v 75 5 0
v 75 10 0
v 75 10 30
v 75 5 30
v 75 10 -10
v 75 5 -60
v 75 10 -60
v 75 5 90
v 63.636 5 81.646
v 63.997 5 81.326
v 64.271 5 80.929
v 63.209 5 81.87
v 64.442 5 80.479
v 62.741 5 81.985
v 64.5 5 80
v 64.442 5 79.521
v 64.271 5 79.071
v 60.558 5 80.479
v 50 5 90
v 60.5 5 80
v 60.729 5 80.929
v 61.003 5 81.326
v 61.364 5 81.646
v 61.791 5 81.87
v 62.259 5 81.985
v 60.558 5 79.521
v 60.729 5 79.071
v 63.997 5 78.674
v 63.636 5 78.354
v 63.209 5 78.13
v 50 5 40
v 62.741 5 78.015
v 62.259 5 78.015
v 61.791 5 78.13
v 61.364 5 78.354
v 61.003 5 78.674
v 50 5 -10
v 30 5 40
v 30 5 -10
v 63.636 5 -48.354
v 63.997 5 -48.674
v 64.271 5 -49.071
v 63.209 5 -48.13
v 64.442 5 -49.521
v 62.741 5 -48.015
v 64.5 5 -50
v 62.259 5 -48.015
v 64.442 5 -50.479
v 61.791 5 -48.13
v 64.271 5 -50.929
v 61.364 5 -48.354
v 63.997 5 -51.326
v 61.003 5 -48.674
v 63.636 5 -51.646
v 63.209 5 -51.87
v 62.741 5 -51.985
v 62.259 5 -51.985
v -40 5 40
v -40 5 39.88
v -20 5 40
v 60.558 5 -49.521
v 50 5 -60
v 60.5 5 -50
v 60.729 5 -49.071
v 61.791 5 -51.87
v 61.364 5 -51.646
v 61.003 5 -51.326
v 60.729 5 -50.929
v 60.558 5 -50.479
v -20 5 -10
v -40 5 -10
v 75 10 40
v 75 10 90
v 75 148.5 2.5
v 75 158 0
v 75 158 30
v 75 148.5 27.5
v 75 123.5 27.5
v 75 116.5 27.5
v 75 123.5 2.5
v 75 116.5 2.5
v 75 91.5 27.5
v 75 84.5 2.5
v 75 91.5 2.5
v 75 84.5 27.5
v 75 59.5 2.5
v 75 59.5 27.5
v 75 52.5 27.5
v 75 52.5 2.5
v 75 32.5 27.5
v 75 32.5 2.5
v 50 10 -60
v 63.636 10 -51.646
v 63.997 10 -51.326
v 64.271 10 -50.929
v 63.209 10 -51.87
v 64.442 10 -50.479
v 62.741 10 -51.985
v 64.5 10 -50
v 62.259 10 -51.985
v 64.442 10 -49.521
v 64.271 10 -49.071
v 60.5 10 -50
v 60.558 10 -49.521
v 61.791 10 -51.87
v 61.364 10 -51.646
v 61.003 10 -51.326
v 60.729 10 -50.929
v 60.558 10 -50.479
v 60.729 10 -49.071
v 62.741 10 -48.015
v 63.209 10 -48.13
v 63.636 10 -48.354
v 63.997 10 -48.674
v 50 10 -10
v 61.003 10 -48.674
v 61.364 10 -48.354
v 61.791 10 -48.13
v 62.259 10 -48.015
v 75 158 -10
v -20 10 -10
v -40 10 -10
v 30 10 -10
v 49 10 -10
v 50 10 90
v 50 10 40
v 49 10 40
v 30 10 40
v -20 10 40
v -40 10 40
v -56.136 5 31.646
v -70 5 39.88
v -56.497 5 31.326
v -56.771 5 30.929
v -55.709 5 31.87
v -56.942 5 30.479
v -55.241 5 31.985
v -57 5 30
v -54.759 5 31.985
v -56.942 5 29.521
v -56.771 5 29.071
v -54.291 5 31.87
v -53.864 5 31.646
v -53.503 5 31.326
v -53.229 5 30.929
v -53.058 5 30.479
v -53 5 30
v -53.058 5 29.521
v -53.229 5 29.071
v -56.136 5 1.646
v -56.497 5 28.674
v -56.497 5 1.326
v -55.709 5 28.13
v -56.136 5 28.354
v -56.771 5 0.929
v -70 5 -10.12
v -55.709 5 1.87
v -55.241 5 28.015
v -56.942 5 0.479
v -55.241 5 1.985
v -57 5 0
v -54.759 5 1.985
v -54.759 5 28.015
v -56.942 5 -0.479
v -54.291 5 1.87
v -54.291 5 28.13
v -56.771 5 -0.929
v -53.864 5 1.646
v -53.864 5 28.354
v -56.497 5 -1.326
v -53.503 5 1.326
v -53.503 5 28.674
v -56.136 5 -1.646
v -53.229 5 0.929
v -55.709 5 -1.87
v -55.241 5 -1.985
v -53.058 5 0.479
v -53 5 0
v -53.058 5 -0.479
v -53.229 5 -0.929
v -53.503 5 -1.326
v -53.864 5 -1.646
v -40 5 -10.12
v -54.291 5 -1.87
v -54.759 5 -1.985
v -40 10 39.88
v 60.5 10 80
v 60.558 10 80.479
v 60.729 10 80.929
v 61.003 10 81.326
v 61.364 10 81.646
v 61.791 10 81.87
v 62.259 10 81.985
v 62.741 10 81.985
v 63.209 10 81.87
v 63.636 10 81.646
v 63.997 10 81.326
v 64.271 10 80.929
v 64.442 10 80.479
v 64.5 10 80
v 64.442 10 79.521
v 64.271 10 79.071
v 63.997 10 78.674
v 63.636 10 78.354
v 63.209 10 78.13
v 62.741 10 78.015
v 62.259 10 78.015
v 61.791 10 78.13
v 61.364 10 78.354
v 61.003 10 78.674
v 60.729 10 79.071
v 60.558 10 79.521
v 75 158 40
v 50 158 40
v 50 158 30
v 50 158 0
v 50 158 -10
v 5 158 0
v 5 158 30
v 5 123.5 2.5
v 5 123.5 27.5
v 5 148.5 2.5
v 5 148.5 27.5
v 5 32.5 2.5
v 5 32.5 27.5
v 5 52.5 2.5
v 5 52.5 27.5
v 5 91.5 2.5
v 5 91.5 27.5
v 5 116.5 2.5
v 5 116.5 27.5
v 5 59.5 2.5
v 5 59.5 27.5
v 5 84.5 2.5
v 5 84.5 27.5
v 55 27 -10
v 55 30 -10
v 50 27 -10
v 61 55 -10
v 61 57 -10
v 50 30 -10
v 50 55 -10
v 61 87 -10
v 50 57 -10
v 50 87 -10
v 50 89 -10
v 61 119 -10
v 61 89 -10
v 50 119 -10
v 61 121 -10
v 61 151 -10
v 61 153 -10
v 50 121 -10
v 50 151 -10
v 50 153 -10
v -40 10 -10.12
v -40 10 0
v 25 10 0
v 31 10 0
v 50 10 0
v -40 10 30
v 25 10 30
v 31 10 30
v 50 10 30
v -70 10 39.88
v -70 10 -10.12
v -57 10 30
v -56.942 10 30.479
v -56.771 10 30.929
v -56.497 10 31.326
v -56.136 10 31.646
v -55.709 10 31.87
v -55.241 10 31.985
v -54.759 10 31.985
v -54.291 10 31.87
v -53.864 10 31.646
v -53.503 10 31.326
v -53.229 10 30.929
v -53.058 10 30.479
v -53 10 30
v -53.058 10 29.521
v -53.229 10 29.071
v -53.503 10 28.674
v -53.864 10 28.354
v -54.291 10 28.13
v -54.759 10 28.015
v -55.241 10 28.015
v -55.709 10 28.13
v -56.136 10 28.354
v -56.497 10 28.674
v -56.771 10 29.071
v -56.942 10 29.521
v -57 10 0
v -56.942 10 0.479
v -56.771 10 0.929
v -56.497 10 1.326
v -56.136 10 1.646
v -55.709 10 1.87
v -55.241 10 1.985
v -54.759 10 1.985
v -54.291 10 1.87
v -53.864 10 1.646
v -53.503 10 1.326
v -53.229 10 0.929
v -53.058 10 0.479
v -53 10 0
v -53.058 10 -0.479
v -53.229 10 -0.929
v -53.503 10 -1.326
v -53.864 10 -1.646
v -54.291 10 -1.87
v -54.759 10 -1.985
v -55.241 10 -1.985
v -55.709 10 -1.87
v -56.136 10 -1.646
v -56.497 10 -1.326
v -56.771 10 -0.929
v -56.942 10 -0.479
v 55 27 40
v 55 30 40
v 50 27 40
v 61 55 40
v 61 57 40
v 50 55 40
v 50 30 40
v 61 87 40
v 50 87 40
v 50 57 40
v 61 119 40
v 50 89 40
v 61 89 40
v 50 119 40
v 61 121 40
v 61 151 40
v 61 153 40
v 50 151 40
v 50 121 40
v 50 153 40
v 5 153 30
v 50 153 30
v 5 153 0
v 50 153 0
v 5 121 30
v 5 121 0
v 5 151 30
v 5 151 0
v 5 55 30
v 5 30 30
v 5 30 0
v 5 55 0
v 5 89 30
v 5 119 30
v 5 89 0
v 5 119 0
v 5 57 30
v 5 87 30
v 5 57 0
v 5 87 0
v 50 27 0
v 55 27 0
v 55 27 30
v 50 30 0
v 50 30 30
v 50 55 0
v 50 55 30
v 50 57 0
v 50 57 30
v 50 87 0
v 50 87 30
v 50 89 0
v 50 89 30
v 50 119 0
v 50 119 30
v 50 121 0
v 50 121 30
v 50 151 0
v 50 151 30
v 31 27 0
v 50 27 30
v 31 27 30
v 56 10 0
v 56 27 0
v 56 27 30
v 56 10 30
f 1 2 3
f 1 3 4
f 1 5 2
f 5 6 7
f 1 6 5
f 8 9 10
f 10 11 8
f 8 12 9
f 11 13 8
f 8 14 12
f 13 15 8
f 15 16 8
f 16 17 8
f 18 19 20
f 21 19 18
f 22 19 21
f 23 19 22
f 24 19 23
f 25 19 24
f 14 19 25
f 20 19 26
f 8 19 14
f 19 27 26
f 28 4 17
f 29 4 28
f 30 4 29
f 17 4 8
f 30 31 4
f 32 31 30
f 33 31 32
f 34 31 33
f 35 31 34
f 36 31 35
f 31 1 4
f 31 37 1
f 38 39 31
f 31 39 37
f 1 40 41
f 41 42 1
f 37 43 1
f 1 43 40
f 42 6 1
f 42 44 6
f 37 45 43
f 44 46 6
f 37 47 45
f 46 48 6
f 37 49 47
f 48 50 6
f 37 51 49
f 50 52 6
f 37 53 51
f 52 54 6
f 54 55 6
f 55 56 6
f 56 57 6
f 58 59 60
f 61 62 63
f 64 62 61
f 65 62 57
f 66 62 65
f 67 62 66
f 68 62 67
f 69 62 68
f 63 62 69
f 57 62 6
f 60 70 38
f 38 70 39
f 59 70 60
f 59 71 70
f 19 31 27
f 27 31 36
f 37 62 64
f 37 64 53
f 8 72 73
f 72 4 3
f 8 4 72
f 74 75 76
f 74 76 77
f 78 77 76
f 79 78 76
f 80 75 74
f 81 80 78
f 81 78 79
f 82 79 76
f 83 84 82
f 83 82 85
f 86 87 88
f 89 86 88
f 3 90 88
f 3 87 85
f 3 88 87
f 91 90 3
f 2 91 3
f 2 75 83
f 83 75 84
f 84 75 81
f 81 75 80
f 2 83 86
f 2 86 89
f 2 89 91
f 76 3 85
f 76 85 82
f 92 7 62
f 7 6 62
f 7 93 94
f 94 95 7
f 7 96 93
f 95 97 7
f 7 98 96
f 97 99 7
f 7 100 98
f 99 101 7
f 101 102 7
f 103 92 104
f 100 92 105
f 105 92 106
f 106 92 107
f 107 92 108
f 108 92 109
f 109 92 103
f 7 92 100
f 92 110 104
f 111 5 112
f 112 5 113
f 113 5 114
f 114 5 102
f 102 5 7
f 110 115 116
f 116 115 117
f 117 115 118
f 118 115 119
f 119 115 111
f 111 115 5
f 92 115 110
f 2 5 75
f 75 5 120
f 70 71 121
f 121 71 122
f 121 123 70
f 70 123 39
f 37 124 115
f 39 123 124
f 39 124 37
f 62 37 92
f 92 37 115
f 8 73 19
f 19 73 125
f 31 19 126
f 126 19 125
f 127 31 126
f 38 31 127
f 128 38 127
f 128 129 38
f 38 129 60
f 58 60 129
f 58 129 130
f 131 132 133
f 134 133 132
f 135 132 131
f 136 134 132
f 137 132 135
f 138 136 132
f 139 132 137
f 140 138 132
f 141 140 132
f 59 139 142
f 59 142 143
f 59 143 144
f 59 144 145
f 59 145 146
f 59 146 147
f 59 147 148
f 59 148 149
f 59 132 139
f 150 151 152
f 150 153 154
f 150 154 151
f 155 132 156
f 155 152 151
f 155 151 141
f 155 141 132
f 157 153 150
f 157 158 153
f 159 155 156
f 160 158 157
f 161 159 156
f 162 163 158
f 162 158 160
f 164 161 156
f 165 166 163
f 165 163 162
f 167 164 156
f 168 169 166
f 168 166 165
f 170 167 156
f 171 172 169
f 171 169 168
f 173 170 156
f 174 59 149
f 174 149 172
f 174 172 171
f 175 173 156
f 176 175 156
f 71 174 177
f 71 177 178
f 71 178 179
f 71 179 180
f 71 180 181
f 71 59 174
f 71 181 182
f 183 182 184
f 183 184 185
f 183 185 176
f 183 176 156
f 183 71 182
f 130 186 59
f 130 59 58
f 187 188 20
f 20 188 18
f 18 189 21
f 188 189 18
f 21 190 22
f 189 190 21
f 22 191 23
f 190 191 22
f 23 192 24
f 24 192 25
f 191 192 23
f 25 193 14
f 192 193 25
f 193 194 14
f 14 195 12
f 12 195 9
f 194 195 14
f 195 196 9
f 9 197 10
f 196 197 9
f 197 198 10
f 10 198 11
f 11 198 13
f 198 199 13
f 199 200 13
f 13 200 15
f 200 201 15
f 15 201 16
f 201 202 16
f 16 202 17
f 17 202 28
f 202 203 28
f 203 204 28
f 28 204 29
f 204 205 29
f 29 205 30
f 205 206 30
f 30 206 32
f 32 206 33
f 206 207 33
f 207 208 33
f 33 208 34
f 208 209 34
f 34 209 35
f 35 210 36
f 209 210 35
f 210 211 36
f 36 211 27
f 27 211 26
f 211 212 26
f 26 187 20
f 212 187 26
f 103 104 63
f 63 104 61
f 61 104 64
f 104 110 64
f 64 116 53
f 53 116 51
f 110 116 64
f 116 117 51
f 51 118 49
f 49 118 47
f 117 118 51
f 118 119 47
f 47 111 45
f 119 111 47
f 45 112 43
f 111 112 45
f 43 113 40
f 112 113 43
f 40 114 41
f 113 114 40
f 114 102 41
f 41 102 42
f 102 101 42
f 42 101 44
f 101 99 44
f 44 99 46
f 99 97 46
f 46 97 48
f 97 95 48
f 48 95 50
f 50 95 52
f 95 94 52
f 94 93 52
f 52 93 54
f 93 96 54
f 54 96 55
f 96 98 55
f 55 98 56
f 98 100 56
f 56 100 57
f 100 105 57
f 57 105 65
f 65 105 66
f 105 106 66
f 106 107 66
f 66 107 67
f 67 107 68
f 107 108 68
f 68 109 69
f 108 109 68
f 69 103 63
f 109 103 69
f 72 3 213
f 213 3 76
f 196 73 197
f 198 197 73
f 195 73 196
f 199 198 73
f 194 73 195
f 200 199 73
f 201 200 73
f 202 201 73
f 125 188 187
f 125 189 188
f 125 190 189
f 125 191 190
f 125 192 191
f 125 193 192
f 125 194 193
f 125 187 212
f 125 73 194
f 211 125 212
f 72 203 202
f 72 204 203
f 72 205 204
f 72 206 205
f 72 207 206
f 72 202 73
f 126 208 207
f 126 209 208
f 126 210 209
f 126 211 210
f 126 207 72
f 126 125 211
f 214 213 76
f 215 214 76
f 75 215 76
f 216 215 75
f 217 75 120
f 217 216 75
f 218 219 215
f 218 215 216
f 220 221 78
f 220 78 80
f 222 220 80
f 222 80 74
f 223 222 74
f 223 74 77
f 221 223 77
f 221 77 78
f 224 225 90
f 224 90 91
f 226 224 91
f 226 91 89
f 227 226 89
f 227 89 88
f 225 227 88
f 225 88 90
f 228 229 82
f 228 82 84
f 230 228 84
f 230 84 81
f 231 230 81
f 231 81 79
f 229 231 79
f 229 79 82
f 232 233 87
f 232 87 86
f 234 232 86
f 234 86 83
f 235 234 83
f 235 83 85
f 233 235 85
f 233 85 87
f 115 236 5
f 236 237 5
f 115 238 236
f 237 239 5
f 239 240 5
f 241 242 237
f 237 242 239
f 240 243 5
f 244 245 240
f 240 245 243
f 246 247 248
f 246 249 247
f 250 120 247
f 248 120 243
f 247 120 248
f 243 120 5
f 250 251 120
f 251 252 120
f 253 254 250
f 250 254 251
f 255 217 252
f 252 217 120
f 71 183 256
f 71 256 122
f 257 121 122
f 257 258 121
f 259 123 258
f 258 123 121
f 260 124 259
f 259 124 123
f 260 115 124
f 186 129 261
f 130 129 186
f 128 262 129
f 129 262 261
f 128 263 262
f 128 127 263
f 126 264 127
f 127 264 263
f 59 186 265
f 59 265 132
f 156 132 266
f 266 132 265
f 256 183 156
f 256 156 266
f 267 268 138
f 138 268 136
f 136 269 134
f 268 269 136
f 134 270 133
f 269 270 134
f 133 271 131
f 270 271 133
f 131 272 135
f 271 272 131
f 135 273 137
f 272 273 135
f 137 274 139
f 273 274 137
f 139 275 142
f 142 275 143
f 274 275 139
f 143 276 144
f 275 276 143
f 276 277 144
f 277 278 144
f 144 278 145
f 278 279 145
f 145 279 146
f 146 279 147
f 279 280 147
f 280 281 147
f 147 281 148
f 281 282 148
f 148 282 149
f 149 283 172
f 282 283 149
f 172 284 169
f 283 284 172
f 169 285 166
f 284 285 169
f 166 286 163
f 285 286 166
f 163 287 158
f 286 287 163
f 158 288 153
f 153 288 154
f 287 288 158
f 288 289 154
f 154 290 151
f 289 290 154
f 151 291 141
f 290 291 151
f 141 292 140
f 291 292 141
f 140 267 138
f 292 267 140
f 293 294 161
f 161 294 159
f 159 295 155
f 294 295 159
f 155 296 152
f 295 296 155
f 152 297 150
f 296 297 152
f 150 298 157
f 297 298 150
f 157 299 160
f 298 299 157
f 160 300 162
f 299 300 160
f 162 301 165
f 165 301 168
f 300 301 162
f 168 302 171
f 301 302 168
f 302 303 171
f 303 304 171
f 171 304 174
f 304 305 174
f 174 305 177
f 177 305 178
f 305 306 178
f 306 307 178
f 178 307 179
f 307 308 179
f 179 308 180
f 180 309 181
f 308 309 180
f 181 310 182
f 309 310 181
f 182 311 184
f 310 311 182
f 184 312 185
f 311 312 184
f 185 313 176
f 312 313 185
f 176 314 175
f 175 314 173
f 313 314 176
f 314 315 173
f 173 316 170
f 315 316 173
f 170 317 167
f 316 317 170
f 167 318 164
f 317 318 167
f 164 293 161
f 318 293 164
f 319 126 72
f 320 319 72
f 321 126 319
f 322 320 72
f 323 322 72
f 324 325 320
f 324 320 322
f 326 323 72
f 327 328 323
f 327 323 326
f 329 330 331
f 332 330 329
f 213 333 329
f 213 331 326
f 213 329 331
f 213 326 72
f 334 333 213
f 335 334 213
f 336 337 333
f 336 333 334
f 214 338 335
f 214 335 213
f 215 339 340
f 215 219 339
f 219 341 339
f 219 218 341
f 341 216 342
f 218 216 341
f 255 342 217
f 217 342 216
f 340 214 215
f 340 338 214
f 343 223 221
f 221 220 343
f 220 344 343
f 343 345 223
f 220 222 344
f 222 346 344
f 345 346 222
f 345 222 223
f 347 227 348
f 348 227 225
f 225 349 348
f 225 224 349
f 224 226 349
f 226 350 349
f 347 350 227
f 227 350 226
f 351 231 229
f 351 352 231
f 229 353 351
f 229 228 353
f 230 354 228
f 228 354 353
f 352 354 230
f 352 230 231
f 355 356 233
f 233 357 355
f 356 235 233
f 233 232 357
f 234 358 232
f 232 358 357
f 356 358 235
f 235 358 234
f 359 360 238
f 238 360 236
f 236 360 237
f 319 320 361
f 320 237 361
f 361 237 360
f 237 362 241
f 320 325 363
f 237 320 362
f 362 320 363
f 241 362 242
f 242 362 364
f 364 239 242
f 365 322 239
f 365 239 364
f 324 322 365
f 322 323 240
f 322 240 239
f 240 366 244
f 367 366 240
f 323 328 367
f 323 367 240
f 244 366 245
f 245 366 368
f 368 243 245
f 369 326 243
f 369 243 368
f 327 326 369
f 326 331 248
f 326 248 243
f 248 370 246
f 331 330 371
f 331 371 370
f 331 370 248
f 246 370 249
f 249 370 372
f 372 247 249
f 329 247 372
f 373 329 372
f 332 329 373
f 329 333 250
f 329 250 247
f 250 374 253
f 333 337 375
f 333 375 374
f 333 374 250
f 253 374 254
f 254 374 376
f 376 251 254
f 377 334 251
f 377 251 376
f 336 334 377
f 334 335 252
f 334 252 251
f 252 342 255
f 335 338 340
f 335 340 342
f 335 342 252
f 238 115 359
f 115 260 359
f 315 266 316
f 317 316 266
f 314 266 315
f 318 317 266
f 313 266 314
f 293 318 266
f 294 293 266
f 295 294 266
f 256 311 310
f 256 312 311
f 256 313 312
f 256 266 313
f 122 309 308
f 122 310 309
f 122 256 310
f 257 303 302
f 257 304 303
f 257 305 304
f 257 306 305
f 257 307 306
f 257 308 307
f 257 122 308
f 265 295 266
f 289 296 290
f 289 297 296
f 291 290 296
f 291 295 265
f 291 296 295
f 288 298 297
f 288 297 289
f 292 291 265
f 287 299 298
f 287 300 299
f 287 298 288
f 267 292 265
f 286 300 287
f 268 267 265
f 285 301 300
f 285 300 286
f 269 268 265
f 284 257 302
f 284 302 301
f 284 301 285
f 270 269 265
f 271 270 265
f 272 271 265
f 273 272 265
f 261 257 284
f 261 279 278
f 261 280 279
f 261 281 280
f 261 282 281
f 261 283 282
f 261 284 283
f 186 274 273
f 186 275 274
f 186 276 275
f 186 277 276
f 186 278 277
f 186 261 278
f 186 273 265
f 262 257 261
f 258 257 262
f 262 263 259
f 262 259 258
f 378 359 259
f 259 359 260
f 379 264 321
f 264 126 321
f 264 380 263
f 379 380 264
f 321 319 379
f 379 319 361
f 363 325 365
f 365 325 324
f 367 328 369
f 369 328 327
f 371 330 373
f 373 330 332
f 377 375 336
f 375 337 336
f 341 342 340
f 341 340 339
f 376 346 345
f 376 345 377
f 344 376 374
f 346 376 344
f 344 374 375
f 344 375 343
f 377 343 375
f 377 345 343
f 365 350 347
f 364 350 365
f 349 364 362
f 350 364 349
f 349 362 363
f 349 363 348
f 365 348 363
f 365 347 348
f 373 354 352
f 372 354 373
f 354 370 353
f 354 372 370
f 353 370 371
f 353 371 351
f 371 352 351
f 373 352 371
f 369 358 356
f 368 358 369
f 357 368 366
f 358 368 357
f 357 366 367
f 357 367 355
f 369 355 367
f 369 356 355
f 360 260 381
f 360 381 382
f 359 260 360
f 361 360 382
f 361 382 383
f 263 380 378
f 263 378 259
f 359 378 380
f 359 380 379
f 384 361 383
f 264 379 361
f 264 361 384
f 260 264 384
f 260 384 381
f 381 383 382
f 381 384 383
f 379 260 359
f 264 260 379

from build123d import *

# Parameters (mm, degrees)
PAD_DEPTH       = 30
SKETCH001_W     = 10
SKETCH001_H     = 150
PAD001_DEPTH    = 180
SKETCH002_W     = 25
SKETCH002_H     = 150
PAD002_DEPTH    = 153
SKETCH003_W     = 5
SKETCH003_H     = 3
SKETCH003_W_2   = 11
SKETCH003_H_2   = 2
POCKET_DEPTH    = 150
SKETCH006_W     = 153
SKETCH006_H     = 50
POCKET001_DEPTH = 35
SKETCH007_W     = 50
SKETCH007_H     = 50
SKETCH007_W_2   = 45
POCKET002_DEPTH = 35
SKETCH004_R     = 2
POCKET003_DEPTH = 10.001
SKETCH008_W     = 25
SKETCH008_H     = 25
SKETCH008_W_2   = 20
SKETCH008_W_3   = 5
SKETCH008_H_2   = 50
POCKET004_DEPTH = 150
SKETCH009_W     = 5
SKETCH009_H     = 150
POCKET005_DEPTH = 200
SKETCH010_W     = 20
SKETCH010_H     = 30
POCKET006_DEPTH = 5
SKETCH011_W     = 70
SKETCH011_H     = 30
POCKET007_DEPTH = 128
SKETCH012_W     = 65
SKETCH012_H     = 150
POCKET008_DEPTH = 5
SKETCH013_W     = 5
SKETCH013_H     = 50
POCKET009_DEPTH = 20
SKETCH014_W     = 20
SKETCH014_H     = 50
POCKET010_DEPTH = 5
SKETCH015_W     = 17
SKETCH015_H     = 30
POCKET011_DEPTH = 6
SKETCH016_W     = 5
SKETCH016_H     = 50
PAD003_DEPTH    = 30
SKETCH017_R     = 2
POCKET012_DEPTH = 5
SKETCH018_W     = 6
SKETCH018_H     = 17
POCKET013_DEPTH = 30


with BuildPart() as part:
    # Sketch → Pad (new body)
    with BuildSketch(Plane.XY):
        Polygon((-75, 0), (75, 0), (75, 163), (-65, 163), (-65, 153), (55, 153), (55, 151), (-65, 151), (-65, 121), (55, 121), (55, 119), (-65, 119), (-65, 89), (55, 89), (55, 87), (-65, 87), (-65, 57), (55, 57), (55, 55), (-65, 55), (-65, 30), (55, 30), (55, 27), (25, 27), (25, 10), (-75, 10), align=None)
    extrude(amount=PAD_DEPTH)

    # Sketch001 (on Face2 of Pad) → Pad001 (join)
    with BuildSketch(Plane.YZ.offset(75)):
        with Locations((5, 15)):
            Rectangle(SKETCH001_W, SKETCH001_H)
    extrude(amount=-PAD001_DEPTH)

    # Sketch002 (on Face10 of Pad001) → Pad002 (join)
    with BuildSketch(Plane(origin=(0, 10, 0), x_dir=(-1, 0, 0), z_dir=(0, 1, 0))):
        with Locations((-62.5, 15)):
            Rectangle(SKETCH002_W, SKETCH002_H)
    extrude(amount=PAD002_DEPTH)

    # Sketch003 (on Face14 of Pad002) → Pocket (cut)
    with BuildSketch(Plane.XY.offset(90)):
        with Locations((52.5, 28.5)):
            Rectangle(SKETCH003_W, SKETCH003_H)
        with Locations((55.5, 56)):
            Rectangle(SKETCH003_W_2, SKETCH003_H_2)
        with Locations((55.5, 88)):
            Rectangle(SKETCH003_W_2, SKETCH003_H_2)
        with Locations((55.5, 120)):
            Rectangle(SKETCH003_W_2, SKETCH003_H_2)
        with Locations((55.5, 152)):
            Rectangle(SKETCH003_W_2, SKETCH003_H_2)
    extrude(amount=-POCKET_DEPTH, mode=Mode.SUBTRACT)

    # Sketch006 → Pocket001 (cut)
    with BuildSketch(Plane(origin=(49, 0, 0), x_dir=(0, -1, 0), z_dir=(-1, 0, 0))):
        with Locations((-86.5, 65)):
            Rectangle(SKETCH006_W, SKETCH006_H)
        with Locations((-86.5, -35)):
            Rectangle(SKETCH006_W, SKETCH006_H)
    extrude(amount=-POCKET001_DEPTH, mode=Mode.SUBTRACT)

    # Sketch007 → Pocket002 (cut)
    with BuildSketch(Plane(origin=(0, 10, 0), x_dir=(-1, 0, 0), z_dir=(0, 1, 0))):
        with Locations((-5, 65)):
            Rectangle(SKETCH007_W, SKETCH007_H)
        with Locations((62.5, 65)):
            Rectangle(SKETCH007_W_2, SKETCH007_H)
        with Locations((-5, -35)):
            Rectangle(SKETCH007_W, SKETCH007_H)
        with Locations((62.5, -35)):
            Rectangle(SKETCH007_W_2, SKETCH007_H)
    extrude(amount=-POCKET002_DEPTH, mode=Mode.SUBTRACT)

    # Sketch004 (on Face13 of Pocket) → Pocket003 (cut, through all)
    with BuildSketch(Plane(origin=(0, 10, 0), x_dir=(-1, 0, 0), z_dir=(0, 1, 0))):
        with Locations((-62.5, 80)):
            Circle(SKETCH004_R)
        with Locations((30, 80)):
            Circle(SKETCH004_R)
        with Locations((95, 80)):
            Circle(SKETCH004_R)
        with Locations((-62.5, -50)):
            Circle(SKETCH004_R)
        with Locations((30, -50)):
            Circle(SKETCH004_R)
        with Locations((95, -50)):
            Circle(SKETCH004_R)
    extrude(amount=-POCKET003_DEPTH, mode=Mode.SUBTRACT)

    # Sketch008 (on Face100 of Pocket003) → Pocket004 (cut)
    with BuildSketch(Plane(origin=(-65, 0, 0), x_dir=(0, -1, 0), z_dir=(-1, 0, 0))):
        with Locations((-136, 15)):
            Rectangle(SKETCH008_W, SKETCH008_H)
        with Locations((-104, 15)):
            Rectangle(SKETCH008_W, SKETCH008_H)
        with Locations((-72, 15)):
            Rectangle(SKETCH008_W, SKETCH008_H)
        with Locations((-42.5, 15)):
            Rectangle(SKETCH008_W_2, SKETCH008_H)
        with Locations((-160.5, 15)):
            Rectangle(SKETCH008_W_3, SKETCH008_H_2)
    extrude(amount=-POCKET004_DEPTH, mode=Mode.SUBTRACT)

    # Sketch009 (on Face20 of Pocket004) → Pocket005 (cut)
    with BuildSketch(Plane(origin=(-105, 0, 0), x_dir=(0, -1, 0), z_dir=(-1, 0, 0))):
        with Locations((-2.5, 15)):
            Rectangle(SKETCH009_W, SKETCH009_H)
    extrude(amount=-POCKET005_DEPTH, mode=Mode.SUBTRACT)

    # Sketch010 (on Face66 of Pocket005) → Pocket006 (cut)
    with BuildSketch(Plane(origin=(0, 10, 0), x_dir=(-1, 0, 0), z_dir=(0, 1, 0))):
        with Locations((65, 15)):
            Rectangle(SKETCH010_W, SKETCH010_H)
    extrude(amount=-POCKET006_DEPTH, mode=Mode.SUBTRACT)

    # Sketch011 (on Face39 of Pocket006) → Pocket007 (cut)
    with BuildSketch(Plane(origin=(0, 158, 0), x_dir=(-1, 0, 0), z_dir=(0, 1, 0))):
        with Locations((30, 15)):
            Rectangle(SKETCH011_W, SKETCH011_H)
    extrude(amount=-POCKET007_DEPTH, mode=Mode.SUBTRACT)

    # Sketch012 (on Face56 of Pocket007) → Pocket008 (cut)
    with BuildSketch(Plane(origin=(0, 10, 0), x_dir=(-1, 0, 0), z_dir=(0, 1, 0))):
        with Locations((72.5, 15)):
            Rectangle(SKETCH012_W, SKETCH012_H)
    extrude(amount=-POCKET008_DEPTH, mode=Mode.SUBTRACT)

    # Sketch013 (on Face14 of Pocket008) → Pocket009 (cut)
    with BuildSketch(Plane(origin=(30, 0, 0), x_dir=(0, -1, 0), z_dir=(-1, 0, 0))):
        with Locations((-7.5, -35)):
            Rectangle(SKETCH013_W, SKETCH013_H)
        with Locations((-7.5, 65)):
            Rectangle(SKETCH013_W, SKETCH013_H)
    extrude(amount=-POCKET009_DEPTH, mode=Mode.SUBTRACT)

    # Sketch014 (on Face3 of Pocket009) → Pocket010 (cut)
    with BuildSketch(Plane.XZ.offset(-5)):
        with Locations((-30, -35)):
            Rectangle(SKETCH014_W, SKETCH014_H)
        with Locations((-30, 65)):
            Rectangle(SKETCH014_W, SKETCH014_H)
    extrude(amount=-POCKET010_DEPTH, mode=Mode.SUBTRACT)

    # Sketch015 (on Face79 of Pocket010) → Pocket011 (cut)
    with BuildSketch(Plane(origin=(50, 0, 0), x_dir=(0, -1, 0), z_dir=(-1, 0, 0))):
        with Locations((-18.5, 15)):
            Rectangle(SKETCH015_W, SKETCH015_H)
    extrude(amount=-POCKET011_DEPTH, mode=Mode.SUBTRACT)

    # Sketch016 (on Face18 of Pocket011) → Pad003 (join)
    with BuildSketch(Plane(origin=(-40, 0, 0), x_dir=(0, -1, 0), z_dir=(-1, 0, 0))):
        with Locations((-7.5, 14.879722)):
            Rectangle(SKETCH016_W, SKETCH016_H)
    extrude(amount=PAD003_DEPTH)

    # Sketch017 (on Face78 of Pad003) → Pocket012 (cut)
    with BuildSketch(Plane(origin=(0, 10, 0), x_dir=(-1, 0, 0), z_dir=(0, 1, 0))):
        with Locations((55, 30)):
            Circle(SKETCH017_R)
        with Locations((55, 0)):
            Circle(SKETCH017_R)
    extrude(amount=-POCKET012_DEPTH, mode=Mode.SUBTRACT)

    # Sketch018 (on Face84 of Pocket012) → Pocket013 (cut)
    with BuildSketch(Plane.XY.offset(30)):
        with Locations((28, 18.5)):
            Rectangle(SKETCH018_W, SKETCH018_H)
    extrude(amount=-POCKET013_DEPTH, mode=Mode.SUBTRACT)


solid = part.part
